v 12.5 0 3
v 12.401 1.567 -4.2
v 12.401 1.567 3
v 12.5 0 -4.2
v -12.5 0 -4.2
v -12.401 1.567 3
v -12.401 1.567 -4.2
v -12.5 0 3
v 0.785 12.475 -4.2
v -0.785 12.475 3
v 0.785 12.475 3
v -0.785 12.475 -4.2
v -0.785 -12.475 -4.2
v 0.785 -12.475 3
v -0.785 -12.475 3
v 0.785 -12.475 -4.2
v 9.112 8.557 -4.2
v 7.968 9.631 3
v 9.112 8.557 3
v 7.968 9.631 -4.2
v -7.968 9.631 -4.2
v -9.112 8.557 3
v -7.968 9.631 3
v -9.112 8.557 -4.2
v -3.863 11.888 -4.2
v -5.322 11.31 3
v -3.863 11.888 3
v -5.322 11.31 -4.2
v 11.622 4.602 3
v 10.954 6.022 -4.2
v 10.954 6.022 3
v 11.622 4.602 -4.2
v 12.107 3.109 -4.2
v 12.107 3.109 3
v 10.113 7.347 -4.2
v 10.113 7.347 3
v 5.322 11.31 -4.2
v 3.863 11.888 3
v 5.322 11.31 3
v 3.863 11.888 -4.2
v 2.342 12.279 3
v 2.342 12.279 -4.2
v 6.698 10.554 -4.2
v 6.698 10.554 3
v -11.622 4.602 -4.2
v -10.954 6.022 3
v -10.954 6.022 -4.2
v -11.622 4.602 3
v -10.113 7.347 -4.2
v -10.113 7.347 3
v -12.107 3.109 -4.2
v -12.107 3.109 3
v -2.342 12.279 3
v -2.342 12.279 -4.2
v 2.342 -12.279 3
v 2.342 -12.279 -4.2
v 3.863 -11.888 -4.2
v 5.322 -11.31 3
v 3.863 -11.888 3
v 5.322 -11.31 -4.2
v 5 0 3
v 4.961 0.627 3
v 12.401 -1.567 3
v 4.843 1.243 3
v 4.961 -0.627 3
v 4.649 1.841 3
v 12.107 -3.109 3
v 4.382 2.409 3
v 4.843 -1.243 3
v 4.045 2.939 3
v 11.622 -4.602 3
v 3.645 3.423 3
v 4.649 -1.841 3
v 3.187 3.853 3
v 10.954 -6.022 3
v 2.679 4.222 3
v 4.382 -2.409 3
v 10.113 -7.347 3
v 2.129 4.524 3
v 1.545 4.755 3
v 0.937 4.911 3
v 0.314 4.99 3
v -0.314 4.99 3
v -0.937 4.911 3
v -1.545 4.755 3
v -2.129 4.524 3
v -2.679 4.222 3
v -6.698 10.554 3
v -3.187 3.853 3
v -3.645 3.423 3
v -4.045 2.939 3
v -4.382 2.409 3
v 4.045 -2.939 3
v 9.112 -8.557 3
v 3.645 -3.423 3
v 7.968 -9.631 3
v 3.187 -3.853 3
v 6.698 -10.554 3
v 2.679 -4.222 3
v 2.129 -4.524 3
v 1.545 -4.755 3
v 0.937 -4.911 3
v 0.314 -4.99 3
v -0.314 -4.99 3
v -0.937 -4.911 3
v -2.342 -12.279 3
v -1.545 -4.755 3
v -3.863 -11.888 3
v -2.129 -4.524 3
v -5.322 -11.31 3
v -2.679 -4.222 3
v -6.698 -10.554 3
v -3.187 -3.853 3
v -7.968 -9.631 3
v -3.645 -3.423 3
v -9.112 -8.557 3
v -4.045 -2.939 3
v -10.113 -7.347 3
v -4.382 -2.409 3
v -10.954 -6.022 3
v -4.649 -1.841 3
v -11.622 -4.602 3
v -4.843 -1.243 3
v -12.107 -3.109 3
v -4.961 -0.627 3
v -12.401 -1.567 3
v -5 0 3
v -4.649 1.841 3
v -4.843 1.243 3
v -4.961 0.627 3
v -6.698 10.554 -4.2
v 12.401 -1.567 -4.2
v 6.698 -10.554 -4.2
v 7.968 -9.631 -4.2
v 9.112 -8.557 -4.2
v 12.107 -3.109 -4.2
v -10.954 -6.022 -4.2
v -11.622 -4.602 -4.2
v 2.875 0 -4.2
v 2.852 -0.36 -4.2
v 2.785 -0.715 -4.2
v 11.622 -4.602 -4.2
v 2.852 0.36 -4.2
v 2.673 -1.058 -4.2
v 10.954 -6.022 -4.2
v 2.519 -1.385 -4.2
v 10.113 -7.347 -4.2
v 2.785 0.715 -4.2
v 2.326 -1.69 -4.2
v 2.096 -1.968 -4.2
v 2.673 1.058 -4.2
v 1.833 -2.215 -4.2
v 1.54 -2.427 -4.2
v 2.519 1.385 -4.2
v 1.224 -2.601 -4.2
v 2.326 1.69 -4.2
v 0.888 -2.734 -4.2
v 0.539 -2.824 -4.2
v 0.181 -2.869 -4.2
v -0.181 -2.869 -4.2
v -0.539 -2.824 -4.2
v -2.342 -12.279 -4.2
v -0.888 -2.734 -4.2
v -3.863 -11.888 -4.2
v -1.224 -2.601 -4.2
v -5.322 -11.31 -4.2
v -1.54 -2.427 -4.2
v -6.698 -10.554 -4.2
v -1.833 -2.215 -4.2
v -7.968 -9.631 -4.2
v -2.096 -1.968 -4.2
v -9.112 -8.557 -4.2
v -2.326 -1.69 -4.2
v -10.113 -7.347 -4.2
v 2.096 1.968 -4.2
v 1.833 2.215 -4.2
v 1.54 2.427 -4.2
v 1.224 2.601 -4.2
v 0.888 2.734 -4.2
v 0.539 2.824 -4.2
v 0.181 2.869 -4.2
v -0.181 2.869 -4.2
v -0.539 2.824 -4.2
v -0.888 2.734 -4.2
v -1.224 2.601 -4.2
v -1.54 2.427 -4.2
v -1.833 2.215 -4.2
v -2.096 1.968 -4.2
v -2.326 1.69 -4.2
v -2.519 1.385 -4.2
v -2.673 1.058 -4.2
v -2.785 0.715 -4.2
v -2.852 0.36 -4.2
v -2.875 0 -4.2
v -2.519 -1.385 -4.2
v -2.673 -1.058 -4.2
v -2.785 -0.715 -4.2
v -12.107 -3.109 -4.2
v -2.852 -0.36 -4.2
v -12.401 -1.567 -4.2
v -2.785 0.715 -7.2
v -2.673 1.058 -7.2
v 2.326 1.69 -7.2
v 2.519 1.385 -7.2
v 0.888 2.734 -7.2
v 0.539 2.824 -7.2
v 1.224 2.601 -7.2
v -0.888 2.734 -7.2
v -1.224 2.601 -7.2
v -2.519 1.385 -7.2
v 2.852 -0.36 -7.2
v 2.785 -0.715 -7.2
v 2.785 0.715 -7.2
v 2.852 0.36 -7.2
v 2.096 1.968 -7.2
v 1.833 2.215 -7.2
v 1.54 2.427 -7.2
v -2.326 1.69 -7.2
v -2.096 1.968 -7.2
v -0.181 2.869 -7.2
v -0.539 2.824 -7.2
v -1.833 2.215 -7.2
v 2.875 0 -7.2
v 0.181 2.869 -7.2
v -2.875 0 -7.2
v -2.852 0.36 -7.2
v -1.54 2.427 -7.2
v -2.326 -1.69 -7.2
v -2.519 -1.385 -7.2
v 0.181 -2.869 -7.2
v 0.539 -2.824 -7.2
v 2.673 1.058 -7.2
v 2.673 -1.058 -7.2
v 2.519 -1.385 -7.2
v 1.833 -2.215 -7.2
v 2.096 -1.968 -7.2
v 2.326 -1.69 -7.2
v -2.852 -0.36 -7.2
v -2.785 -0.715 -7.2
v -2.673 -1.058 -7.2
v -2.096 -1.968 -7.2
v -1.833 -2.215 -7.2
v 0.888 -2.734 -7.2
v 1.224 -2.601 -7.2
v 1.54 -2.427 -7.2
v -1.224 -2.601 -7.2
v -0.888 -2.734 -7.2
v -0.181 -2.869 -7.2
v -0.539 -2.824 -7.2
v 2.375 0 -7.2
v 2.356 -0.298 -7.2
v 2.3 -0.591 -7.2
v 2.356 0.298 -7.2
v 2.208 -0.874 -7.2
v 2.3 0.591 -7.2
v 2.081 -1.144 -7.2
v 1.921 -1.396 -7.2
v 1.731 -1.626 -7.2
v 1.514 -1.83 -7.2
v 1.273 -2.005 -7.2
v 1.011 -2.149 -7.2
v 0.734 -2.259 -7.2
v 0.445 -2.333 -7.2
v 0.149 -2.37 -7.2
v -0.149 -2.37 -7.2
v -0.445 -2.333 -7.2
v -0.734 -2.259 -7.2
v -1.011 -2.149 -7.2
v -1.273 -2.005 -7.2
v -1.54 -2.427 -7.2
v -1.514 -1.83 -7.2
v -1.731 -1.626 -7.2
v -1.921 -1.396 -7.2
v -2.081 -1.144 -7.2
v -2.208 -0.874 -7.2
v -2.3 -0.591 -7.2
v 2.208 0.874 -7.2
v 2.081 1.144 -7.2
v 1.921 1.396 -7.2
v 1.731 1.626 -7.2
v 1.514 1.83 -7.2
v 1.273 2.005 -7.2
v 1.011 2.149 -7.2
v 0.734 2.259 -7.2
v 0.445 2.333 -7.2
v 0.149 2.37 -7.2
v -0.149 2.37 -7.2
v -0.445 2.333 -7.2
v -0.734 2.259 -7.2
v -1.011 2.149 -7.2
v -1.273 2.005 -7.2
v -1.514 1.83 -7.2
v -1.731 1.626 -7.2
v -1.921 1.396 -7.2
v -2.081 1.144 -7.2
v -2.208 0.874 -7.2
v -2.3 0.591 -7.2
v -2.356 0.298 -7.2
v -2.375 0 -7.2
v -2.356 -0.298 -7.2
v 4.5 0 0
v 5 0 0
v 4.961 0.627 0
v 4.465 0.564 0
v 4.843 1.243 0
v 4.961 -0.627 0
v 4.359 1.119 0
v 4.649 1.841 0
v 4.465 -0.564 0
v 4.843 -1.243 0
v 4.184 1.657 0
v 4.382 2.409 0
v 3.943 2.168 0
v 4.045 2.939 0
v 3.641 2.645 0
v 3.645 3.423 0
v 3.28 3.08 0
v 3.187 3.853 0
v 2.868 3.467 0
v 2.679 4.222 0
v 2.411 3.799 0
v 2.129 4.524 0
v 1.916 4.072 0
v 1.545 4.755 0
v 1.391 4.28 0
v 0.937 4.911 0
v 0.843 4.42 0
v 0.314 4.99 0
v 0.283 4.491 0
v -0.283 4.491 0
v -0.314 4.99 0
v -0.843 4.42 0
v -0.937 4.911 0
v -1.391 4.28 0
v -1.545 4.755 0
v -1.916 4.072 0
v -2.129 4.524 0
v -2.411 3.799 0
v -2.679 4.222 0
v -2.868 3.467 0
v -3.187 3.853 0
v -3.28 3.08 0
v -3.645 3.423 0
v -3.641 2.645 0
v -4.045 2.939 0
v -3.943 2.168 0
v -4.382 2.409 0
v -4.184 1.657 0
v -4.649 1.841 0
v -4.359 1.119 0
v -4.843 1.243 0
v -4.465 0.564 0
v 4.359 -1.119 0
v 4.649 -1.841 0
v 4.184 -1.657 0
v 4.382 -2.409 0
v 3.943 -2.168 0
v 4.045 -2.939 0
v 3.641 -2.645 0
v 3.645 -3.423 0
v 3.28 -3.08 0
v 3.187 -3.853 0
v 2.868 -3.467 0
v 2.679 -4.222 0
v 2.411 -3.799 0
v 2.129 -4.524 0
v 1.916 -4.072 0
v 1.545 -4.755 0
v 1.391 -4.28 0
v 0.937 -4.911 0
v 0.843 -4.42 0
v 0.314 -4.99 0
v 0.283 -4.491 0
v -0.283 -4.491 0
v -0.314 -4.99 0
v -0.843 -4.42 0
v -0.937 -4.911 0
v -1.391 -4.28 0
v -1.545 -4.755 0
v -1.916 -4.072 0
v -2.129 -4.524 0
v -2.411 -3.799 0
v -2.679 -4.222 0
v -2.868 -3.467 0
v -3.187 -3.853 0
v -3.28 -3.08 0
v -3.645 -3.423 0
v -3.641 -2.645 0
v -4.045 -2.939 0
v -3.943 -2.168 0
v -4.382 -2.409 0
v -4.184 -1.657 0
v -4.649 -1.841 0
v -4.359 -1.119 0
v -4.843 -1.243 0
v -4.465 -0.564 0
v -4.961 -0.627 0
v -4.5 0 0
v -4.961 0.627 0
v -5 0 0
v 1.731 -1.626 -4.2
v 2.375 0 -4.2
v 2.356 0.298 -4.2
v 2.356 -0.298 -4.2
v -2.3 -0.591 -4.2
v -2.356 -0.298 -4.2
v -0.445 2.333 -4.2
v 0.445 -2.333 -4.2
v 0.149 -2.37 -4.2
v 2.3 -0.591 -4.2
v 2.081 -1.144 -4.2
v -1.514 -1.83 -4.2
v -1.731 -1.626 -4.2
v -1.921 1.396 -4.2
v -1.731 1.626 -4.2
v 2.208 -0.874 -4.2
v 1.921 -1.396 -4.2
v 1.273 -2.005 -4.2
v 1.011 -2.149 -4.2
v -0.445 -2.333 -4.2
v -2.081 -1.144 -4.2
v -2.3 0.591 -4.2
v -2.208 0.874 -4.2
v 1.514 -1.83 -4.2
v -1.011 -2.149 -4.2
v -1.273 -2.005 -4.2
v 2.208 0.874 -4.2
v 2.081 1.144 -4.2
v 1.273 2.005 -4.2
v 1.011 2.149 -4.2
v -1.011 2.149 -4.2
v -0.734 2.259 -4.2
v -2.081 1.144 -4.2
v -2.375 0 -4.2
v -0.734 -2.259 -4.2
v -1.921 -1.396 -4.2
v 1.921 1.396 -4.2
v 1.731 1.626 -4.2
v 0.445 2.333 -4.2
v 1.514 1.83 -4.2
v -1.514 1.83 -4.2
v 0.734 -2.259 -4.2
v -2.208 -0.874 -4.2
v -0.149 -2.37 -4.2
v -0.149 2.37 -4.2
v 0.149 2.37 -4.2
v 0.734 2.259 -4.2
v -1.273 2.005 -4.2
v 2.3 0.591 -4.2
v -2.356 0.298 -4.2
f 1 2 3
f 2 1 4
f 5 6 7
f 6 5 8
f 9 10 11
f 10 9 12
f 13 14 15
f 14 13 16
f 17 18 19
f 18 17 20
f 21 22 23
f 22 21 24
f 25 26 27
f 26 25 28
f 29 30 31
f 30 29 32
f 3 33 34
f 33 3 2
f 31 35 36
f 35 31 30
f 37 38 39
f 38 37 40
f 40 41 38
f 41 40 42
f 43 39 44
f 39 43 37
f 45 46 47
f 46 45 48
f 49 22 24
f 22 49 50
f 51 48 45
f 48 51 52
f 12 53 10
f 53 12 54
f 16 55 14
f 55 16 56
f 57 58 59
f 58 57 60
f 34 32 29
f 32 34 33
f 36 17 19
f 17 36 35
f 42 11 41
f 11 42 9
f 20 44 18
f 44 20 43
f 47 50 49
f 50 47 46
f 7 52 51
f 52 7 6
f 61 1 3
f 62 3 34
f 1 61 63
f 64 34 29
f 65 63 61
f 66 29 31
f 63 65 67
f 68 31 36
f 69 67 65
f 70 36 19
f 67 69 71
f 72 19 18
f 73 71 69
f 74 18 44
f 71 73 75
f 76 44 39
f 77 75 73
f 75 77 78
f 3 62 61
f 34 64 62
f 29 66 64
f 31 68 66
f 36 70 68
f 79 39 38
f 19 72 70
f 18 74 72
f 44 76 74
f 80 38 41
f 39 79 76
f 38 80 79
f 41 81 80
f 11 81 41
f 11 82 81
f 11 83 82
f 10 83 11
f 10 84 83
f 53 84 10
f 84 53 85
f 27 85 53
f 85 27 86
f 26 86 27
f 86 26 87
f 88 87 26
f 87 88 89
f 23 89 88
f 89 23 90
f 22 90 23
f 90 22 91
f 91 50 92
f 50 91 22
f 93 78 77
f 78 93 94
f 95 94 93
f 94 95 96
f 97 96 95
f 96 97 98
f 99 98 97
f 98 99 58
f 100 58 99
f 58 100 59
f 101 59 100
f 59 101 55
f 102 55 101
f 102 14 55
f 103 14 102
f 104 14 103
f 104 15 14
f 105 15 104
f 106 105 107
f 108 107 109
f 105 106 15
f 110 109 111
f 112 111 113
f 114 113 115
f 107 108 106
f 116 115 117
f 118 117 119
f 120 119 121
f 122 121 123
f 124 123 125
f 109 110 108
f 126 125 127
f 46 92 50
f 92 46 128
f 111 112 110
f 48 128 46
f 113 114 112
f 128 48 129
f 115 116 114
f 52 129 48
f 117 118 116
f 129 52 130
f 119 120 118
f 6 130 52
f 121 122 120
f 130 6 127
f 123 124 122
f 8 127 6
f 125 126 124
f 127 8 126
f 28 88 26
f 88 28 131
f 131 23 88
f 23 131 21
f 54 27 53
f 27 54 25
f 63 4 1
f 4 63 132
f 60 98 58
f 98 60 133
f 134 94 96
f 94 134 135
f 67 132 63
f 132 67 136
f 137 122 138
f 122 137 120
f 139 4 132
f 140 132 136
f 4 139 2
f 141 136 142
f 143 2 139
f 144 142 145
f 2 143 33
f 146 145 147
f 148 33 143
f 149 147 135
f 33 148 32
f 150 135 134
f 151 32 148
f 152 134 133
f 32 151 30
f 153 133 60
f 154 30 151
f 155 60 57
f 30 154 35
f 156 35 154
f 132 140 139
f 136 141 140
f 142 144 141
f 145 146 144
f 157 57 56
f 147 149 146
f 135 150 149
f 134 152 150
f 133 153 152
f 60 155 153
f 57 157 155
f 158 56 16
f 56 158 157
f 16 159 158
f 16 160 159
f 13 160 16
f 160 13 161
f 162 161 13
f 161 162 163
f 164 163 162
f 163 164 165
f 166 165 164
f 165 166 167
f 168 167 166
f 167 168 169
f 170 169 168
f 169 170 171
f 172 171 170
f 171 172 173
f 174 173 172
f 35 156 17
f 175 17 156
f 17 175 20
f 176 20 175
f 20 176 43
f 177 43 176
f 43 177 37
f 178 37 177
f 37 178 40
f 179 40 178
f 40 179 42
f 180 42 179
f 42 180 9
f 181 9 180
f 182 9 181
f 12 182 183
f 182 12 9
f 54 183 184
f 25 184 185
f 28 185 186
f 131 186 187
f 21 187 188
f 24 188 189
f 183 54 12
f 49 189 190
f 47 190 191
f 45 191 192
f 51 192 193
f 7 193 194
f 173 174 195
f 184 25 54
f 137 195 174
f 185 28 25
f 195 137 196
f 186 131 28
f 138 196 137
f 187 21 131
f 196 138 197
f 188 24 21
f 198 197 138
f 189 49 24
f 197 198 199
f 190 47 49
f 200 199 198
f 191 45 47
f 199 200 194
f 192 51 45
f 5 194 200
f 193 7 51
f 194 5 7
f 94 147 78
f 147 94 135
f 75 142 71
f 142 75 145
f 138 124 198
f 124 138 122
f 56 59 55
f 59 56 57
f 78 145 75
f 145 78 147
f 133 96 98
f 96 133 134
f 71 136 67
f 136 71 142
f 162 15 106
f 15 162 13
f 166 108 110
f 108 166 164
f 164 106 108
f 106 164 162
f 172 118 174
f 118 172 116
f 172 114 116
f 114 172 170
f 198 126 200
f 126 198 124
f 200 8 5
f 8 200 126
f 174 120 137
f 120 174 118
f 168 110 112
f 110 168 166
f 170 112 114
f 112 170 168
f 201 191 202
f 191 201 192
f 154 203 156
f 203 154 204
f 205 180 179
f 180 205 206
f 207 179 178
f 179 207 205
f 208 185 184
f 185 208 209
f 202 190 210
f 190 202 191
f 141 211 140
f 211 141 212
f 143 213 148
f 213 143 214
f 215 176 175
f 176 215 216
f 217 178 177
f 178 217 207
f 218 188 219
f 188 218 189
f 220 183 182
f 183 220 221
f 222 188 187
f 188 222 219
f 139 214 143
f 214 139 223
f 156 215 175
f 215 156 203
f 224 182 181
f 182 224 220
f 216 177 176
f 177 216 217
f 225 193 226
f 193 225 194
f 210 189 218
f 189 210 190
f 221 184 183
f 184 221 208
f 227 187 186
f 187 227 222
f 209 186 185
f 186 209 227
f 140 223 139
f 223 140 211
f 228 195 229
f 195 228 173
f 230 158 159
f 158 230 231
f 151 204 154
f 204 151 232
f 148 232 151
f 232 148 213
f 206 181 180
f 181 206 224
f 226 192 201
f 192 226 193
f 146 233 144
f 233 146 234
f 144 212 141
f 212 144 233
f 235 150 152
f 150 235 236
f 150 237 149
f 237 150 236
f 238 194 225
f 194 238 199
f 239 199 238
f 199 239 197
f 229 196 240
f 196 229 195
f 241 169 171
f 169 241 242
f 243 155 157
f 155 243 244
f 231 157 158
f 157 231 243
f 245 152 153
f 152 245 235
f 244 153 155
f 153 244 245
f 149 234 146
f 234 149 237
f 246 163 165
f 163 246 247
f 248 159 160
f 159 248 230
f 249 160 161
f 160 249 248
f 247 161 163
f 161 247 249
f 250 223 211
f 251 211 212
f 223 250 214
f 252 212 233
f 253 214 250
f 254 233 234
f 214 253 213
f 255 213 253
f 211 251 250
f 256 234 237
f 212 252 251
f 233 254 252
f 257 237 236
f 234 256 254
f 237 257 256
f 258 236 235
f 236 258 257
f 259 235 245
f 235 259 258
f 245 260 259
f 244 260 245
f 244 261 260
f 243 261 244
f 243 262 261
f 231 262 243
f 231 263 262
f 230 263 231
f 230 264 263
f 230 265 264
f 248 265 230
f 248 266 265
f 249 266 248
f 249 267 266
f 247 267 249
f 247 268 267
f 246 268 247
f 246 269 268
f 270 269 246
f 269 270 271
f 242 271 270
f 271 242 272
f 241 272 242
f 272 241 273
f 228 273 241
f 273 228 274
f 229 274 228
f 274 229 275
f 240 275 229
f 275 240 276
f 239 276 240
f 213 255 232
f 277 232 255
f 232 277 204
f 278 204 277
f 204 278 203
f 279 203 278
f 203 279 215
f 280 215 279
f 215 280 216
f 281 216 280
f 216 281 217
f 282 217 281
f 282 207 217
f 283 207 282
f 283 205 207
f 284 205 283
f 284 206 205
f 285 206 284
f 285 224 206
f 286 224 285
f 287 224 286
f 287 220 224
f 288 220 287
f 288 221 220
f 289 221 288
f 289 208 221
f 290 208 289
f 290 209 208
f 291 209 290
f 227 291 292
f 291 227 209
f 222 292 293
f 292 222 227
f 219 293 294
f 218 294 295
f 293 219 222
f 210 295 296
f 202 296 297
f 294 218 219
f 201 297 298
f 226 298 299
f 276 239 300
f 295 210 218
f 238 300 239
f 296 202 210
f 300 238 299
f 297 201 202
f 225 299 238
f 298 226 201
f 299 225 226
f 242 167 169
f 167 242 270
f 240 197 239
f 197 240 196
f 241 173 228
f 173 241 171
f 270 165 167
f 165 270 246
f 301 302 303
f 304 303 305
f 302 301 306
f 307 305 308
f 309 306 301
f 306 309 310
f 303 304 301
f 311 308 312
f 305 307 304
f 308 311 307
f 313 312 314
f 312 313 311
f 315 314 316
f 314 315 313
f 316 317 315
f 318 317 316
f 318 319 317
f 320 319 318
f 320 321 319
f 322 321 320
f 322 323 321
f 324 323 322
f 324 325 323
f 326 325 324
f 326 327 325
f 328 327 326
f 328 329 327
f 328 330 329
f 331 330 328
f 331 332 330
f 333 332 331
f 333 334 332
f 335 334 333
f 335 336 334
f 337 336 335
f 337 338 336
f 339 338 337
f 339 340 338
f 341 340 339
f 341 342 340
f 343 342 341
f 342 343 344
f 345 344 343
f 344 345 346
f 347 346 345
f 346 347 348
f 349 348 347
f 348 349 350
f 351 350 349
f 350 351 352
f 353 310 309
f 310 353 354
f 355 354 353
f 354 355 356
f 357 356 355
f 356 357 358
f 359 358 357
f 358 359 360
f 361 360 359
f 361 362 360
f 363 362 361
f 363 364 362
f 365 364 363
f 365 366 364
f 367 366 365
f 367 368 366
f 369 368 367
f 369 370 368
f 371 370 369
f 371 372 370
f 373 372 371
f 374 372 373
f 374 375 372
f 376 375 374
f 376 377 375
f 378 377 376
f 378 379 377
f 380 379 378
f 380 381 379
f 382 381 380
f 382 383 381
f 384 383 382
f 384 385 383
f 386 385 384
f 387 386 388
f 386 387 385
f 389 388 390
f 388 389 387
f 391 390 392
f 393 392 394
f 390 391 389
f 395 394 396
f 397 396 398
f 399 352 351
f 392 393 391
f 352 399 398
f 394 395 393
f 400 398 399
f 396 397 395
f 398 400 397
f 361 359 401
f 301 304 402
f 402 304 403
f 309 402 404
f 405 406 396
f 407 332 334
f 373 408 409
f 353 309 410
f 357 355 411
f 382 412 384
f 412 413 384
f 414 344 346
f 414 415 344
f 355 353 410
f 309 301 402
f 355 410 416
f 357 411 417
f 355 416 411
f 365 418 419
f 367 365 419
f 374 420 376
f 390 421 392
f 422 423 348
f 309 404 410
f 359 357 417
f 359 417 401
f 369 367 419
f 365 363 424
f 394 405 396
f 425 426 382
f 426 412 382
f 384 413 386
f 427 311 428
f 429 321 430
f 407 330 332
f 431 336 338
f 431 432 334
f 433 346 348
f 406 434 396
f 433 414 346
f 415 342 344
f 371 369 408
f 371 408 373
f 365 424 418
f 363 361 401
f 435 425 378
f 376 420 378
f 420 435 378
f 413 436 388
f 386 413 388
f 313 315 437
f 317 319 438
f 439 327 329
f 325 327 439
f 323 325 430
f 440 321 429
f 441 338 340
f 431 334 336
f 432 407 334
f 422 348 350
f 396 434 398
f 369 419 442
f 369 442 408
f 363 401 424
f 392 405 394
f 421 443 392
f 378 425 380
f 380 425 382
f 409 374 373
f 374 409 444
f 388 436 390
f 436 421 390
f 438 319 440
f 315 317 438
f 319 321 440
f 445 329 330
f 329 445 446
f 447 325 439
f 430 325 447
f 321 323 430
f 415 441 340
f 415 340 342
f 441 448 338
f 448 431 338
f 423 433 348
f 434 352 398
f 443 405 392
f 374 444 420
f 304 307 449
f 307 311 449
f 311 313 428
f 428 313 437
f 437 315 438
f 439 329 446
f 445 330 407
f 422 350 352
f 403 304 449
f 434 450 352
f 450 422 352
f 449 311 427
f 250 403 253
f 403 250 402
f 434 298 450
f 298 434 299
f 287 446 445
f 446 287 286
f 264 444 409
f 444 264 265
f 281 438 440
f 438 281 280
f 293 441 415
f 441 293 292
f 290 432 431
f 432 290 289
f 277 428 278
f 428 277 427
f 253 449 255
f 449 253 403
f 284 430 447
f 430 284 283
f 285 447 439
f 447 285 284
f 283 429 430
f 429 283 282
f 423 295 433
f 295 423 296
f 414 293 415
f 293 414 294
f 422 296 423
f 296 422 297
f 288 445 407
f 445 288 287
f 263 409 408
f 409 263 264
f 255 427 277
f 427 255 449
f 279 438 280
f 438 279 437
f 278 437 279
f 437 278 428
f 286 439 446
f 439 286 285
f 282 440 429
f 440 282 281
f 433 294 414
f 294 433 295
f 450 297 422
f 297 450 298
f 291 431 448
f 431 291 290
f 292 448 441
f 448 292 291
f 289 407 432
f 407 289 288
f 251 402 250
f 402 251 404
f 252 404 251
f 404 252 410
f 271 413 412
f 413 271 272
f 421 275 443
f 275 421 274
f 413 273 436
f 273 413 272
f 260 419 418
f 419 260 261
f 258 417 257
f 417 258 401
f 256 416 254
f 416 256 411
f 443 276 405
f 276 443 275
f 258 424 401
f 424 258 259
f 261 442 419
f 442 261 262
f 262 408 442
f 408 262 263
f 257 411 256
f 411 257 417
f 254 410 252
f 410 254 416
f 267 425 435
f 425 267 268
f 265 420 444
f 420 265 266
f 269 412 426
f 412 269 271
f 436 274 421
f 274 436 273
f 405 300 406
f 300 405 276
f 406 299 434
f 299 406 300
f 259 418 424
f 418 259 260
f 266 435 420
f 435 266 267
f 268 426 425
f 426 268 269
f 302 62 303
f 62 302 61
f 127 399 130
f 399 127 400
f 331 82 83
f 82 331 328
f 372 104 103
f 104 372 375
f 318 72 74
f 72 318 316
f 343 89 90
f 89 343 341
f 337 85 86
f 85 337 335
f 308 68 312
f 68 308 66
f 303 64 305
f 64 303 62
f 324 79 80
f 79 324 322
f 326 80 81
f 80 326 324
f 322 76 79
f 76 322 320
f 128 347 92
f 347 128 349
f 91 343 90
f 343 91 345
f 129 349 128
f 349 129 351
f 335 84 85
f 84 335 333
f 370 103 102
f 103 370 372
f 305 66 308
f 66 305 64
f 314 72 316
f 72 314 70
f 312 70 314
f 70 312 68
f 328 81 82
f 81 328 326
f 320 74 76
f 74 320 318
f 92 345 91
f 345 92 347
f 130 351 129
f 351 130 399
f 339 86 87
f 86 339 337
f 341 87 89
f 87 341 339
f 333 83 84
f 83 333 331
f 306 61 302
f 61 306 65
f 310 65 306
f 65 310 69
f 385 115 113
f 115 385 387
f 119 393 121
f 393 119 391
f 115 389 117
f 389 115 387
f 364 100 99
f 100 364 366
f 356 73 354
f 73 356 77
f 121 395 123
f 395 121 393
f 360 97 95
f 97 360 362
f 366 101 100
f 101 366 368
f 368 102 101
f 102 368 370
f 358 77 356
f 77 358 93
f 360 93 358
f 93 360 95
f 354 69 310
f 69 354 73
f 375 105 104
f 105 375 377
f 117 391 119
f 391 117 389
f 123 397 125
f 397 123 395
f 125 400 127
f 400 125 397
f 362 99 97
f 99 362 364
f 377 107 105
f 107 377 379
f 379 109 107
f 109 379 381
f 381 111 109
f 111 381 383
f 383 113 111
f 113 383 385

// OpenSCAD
$fn = 50;

difference() {
	union() {
		translate(v = [0, 0, -4.2]) {
			cylinder(h = 7.2, r = 12.5);
		}
		#translate(v = [0, 0, -7.2]) {
			cylinder(h = 7.2, r = 2.875);
		}
	}
	union() {
		translate(v = [0, 0, 0]) {
			rotate(a = [0, 0, 0]) {
				difference() {
					union() {
						translate(v = [0, 0, -7.2]) {
							cylinder(h = 7.2, r = 2.25);
						}
						translate(v = [0, 0, -4.2]) {
							cylinder(h = 4.2, r1 = 2.375, r2 = 4.5);
						}
						translate(v = [0, 0, -7.2]) {
							cylinder(h = 7.2, r = 2.375);
						}
						translate(v = [0, 0, -7.2]) {
							cylinder(h = 7.2, r = 2.25);
						}
					}
					union();
				}
			}
		}
		#cylinder(h = 3, r = 5.0);
	}
}
